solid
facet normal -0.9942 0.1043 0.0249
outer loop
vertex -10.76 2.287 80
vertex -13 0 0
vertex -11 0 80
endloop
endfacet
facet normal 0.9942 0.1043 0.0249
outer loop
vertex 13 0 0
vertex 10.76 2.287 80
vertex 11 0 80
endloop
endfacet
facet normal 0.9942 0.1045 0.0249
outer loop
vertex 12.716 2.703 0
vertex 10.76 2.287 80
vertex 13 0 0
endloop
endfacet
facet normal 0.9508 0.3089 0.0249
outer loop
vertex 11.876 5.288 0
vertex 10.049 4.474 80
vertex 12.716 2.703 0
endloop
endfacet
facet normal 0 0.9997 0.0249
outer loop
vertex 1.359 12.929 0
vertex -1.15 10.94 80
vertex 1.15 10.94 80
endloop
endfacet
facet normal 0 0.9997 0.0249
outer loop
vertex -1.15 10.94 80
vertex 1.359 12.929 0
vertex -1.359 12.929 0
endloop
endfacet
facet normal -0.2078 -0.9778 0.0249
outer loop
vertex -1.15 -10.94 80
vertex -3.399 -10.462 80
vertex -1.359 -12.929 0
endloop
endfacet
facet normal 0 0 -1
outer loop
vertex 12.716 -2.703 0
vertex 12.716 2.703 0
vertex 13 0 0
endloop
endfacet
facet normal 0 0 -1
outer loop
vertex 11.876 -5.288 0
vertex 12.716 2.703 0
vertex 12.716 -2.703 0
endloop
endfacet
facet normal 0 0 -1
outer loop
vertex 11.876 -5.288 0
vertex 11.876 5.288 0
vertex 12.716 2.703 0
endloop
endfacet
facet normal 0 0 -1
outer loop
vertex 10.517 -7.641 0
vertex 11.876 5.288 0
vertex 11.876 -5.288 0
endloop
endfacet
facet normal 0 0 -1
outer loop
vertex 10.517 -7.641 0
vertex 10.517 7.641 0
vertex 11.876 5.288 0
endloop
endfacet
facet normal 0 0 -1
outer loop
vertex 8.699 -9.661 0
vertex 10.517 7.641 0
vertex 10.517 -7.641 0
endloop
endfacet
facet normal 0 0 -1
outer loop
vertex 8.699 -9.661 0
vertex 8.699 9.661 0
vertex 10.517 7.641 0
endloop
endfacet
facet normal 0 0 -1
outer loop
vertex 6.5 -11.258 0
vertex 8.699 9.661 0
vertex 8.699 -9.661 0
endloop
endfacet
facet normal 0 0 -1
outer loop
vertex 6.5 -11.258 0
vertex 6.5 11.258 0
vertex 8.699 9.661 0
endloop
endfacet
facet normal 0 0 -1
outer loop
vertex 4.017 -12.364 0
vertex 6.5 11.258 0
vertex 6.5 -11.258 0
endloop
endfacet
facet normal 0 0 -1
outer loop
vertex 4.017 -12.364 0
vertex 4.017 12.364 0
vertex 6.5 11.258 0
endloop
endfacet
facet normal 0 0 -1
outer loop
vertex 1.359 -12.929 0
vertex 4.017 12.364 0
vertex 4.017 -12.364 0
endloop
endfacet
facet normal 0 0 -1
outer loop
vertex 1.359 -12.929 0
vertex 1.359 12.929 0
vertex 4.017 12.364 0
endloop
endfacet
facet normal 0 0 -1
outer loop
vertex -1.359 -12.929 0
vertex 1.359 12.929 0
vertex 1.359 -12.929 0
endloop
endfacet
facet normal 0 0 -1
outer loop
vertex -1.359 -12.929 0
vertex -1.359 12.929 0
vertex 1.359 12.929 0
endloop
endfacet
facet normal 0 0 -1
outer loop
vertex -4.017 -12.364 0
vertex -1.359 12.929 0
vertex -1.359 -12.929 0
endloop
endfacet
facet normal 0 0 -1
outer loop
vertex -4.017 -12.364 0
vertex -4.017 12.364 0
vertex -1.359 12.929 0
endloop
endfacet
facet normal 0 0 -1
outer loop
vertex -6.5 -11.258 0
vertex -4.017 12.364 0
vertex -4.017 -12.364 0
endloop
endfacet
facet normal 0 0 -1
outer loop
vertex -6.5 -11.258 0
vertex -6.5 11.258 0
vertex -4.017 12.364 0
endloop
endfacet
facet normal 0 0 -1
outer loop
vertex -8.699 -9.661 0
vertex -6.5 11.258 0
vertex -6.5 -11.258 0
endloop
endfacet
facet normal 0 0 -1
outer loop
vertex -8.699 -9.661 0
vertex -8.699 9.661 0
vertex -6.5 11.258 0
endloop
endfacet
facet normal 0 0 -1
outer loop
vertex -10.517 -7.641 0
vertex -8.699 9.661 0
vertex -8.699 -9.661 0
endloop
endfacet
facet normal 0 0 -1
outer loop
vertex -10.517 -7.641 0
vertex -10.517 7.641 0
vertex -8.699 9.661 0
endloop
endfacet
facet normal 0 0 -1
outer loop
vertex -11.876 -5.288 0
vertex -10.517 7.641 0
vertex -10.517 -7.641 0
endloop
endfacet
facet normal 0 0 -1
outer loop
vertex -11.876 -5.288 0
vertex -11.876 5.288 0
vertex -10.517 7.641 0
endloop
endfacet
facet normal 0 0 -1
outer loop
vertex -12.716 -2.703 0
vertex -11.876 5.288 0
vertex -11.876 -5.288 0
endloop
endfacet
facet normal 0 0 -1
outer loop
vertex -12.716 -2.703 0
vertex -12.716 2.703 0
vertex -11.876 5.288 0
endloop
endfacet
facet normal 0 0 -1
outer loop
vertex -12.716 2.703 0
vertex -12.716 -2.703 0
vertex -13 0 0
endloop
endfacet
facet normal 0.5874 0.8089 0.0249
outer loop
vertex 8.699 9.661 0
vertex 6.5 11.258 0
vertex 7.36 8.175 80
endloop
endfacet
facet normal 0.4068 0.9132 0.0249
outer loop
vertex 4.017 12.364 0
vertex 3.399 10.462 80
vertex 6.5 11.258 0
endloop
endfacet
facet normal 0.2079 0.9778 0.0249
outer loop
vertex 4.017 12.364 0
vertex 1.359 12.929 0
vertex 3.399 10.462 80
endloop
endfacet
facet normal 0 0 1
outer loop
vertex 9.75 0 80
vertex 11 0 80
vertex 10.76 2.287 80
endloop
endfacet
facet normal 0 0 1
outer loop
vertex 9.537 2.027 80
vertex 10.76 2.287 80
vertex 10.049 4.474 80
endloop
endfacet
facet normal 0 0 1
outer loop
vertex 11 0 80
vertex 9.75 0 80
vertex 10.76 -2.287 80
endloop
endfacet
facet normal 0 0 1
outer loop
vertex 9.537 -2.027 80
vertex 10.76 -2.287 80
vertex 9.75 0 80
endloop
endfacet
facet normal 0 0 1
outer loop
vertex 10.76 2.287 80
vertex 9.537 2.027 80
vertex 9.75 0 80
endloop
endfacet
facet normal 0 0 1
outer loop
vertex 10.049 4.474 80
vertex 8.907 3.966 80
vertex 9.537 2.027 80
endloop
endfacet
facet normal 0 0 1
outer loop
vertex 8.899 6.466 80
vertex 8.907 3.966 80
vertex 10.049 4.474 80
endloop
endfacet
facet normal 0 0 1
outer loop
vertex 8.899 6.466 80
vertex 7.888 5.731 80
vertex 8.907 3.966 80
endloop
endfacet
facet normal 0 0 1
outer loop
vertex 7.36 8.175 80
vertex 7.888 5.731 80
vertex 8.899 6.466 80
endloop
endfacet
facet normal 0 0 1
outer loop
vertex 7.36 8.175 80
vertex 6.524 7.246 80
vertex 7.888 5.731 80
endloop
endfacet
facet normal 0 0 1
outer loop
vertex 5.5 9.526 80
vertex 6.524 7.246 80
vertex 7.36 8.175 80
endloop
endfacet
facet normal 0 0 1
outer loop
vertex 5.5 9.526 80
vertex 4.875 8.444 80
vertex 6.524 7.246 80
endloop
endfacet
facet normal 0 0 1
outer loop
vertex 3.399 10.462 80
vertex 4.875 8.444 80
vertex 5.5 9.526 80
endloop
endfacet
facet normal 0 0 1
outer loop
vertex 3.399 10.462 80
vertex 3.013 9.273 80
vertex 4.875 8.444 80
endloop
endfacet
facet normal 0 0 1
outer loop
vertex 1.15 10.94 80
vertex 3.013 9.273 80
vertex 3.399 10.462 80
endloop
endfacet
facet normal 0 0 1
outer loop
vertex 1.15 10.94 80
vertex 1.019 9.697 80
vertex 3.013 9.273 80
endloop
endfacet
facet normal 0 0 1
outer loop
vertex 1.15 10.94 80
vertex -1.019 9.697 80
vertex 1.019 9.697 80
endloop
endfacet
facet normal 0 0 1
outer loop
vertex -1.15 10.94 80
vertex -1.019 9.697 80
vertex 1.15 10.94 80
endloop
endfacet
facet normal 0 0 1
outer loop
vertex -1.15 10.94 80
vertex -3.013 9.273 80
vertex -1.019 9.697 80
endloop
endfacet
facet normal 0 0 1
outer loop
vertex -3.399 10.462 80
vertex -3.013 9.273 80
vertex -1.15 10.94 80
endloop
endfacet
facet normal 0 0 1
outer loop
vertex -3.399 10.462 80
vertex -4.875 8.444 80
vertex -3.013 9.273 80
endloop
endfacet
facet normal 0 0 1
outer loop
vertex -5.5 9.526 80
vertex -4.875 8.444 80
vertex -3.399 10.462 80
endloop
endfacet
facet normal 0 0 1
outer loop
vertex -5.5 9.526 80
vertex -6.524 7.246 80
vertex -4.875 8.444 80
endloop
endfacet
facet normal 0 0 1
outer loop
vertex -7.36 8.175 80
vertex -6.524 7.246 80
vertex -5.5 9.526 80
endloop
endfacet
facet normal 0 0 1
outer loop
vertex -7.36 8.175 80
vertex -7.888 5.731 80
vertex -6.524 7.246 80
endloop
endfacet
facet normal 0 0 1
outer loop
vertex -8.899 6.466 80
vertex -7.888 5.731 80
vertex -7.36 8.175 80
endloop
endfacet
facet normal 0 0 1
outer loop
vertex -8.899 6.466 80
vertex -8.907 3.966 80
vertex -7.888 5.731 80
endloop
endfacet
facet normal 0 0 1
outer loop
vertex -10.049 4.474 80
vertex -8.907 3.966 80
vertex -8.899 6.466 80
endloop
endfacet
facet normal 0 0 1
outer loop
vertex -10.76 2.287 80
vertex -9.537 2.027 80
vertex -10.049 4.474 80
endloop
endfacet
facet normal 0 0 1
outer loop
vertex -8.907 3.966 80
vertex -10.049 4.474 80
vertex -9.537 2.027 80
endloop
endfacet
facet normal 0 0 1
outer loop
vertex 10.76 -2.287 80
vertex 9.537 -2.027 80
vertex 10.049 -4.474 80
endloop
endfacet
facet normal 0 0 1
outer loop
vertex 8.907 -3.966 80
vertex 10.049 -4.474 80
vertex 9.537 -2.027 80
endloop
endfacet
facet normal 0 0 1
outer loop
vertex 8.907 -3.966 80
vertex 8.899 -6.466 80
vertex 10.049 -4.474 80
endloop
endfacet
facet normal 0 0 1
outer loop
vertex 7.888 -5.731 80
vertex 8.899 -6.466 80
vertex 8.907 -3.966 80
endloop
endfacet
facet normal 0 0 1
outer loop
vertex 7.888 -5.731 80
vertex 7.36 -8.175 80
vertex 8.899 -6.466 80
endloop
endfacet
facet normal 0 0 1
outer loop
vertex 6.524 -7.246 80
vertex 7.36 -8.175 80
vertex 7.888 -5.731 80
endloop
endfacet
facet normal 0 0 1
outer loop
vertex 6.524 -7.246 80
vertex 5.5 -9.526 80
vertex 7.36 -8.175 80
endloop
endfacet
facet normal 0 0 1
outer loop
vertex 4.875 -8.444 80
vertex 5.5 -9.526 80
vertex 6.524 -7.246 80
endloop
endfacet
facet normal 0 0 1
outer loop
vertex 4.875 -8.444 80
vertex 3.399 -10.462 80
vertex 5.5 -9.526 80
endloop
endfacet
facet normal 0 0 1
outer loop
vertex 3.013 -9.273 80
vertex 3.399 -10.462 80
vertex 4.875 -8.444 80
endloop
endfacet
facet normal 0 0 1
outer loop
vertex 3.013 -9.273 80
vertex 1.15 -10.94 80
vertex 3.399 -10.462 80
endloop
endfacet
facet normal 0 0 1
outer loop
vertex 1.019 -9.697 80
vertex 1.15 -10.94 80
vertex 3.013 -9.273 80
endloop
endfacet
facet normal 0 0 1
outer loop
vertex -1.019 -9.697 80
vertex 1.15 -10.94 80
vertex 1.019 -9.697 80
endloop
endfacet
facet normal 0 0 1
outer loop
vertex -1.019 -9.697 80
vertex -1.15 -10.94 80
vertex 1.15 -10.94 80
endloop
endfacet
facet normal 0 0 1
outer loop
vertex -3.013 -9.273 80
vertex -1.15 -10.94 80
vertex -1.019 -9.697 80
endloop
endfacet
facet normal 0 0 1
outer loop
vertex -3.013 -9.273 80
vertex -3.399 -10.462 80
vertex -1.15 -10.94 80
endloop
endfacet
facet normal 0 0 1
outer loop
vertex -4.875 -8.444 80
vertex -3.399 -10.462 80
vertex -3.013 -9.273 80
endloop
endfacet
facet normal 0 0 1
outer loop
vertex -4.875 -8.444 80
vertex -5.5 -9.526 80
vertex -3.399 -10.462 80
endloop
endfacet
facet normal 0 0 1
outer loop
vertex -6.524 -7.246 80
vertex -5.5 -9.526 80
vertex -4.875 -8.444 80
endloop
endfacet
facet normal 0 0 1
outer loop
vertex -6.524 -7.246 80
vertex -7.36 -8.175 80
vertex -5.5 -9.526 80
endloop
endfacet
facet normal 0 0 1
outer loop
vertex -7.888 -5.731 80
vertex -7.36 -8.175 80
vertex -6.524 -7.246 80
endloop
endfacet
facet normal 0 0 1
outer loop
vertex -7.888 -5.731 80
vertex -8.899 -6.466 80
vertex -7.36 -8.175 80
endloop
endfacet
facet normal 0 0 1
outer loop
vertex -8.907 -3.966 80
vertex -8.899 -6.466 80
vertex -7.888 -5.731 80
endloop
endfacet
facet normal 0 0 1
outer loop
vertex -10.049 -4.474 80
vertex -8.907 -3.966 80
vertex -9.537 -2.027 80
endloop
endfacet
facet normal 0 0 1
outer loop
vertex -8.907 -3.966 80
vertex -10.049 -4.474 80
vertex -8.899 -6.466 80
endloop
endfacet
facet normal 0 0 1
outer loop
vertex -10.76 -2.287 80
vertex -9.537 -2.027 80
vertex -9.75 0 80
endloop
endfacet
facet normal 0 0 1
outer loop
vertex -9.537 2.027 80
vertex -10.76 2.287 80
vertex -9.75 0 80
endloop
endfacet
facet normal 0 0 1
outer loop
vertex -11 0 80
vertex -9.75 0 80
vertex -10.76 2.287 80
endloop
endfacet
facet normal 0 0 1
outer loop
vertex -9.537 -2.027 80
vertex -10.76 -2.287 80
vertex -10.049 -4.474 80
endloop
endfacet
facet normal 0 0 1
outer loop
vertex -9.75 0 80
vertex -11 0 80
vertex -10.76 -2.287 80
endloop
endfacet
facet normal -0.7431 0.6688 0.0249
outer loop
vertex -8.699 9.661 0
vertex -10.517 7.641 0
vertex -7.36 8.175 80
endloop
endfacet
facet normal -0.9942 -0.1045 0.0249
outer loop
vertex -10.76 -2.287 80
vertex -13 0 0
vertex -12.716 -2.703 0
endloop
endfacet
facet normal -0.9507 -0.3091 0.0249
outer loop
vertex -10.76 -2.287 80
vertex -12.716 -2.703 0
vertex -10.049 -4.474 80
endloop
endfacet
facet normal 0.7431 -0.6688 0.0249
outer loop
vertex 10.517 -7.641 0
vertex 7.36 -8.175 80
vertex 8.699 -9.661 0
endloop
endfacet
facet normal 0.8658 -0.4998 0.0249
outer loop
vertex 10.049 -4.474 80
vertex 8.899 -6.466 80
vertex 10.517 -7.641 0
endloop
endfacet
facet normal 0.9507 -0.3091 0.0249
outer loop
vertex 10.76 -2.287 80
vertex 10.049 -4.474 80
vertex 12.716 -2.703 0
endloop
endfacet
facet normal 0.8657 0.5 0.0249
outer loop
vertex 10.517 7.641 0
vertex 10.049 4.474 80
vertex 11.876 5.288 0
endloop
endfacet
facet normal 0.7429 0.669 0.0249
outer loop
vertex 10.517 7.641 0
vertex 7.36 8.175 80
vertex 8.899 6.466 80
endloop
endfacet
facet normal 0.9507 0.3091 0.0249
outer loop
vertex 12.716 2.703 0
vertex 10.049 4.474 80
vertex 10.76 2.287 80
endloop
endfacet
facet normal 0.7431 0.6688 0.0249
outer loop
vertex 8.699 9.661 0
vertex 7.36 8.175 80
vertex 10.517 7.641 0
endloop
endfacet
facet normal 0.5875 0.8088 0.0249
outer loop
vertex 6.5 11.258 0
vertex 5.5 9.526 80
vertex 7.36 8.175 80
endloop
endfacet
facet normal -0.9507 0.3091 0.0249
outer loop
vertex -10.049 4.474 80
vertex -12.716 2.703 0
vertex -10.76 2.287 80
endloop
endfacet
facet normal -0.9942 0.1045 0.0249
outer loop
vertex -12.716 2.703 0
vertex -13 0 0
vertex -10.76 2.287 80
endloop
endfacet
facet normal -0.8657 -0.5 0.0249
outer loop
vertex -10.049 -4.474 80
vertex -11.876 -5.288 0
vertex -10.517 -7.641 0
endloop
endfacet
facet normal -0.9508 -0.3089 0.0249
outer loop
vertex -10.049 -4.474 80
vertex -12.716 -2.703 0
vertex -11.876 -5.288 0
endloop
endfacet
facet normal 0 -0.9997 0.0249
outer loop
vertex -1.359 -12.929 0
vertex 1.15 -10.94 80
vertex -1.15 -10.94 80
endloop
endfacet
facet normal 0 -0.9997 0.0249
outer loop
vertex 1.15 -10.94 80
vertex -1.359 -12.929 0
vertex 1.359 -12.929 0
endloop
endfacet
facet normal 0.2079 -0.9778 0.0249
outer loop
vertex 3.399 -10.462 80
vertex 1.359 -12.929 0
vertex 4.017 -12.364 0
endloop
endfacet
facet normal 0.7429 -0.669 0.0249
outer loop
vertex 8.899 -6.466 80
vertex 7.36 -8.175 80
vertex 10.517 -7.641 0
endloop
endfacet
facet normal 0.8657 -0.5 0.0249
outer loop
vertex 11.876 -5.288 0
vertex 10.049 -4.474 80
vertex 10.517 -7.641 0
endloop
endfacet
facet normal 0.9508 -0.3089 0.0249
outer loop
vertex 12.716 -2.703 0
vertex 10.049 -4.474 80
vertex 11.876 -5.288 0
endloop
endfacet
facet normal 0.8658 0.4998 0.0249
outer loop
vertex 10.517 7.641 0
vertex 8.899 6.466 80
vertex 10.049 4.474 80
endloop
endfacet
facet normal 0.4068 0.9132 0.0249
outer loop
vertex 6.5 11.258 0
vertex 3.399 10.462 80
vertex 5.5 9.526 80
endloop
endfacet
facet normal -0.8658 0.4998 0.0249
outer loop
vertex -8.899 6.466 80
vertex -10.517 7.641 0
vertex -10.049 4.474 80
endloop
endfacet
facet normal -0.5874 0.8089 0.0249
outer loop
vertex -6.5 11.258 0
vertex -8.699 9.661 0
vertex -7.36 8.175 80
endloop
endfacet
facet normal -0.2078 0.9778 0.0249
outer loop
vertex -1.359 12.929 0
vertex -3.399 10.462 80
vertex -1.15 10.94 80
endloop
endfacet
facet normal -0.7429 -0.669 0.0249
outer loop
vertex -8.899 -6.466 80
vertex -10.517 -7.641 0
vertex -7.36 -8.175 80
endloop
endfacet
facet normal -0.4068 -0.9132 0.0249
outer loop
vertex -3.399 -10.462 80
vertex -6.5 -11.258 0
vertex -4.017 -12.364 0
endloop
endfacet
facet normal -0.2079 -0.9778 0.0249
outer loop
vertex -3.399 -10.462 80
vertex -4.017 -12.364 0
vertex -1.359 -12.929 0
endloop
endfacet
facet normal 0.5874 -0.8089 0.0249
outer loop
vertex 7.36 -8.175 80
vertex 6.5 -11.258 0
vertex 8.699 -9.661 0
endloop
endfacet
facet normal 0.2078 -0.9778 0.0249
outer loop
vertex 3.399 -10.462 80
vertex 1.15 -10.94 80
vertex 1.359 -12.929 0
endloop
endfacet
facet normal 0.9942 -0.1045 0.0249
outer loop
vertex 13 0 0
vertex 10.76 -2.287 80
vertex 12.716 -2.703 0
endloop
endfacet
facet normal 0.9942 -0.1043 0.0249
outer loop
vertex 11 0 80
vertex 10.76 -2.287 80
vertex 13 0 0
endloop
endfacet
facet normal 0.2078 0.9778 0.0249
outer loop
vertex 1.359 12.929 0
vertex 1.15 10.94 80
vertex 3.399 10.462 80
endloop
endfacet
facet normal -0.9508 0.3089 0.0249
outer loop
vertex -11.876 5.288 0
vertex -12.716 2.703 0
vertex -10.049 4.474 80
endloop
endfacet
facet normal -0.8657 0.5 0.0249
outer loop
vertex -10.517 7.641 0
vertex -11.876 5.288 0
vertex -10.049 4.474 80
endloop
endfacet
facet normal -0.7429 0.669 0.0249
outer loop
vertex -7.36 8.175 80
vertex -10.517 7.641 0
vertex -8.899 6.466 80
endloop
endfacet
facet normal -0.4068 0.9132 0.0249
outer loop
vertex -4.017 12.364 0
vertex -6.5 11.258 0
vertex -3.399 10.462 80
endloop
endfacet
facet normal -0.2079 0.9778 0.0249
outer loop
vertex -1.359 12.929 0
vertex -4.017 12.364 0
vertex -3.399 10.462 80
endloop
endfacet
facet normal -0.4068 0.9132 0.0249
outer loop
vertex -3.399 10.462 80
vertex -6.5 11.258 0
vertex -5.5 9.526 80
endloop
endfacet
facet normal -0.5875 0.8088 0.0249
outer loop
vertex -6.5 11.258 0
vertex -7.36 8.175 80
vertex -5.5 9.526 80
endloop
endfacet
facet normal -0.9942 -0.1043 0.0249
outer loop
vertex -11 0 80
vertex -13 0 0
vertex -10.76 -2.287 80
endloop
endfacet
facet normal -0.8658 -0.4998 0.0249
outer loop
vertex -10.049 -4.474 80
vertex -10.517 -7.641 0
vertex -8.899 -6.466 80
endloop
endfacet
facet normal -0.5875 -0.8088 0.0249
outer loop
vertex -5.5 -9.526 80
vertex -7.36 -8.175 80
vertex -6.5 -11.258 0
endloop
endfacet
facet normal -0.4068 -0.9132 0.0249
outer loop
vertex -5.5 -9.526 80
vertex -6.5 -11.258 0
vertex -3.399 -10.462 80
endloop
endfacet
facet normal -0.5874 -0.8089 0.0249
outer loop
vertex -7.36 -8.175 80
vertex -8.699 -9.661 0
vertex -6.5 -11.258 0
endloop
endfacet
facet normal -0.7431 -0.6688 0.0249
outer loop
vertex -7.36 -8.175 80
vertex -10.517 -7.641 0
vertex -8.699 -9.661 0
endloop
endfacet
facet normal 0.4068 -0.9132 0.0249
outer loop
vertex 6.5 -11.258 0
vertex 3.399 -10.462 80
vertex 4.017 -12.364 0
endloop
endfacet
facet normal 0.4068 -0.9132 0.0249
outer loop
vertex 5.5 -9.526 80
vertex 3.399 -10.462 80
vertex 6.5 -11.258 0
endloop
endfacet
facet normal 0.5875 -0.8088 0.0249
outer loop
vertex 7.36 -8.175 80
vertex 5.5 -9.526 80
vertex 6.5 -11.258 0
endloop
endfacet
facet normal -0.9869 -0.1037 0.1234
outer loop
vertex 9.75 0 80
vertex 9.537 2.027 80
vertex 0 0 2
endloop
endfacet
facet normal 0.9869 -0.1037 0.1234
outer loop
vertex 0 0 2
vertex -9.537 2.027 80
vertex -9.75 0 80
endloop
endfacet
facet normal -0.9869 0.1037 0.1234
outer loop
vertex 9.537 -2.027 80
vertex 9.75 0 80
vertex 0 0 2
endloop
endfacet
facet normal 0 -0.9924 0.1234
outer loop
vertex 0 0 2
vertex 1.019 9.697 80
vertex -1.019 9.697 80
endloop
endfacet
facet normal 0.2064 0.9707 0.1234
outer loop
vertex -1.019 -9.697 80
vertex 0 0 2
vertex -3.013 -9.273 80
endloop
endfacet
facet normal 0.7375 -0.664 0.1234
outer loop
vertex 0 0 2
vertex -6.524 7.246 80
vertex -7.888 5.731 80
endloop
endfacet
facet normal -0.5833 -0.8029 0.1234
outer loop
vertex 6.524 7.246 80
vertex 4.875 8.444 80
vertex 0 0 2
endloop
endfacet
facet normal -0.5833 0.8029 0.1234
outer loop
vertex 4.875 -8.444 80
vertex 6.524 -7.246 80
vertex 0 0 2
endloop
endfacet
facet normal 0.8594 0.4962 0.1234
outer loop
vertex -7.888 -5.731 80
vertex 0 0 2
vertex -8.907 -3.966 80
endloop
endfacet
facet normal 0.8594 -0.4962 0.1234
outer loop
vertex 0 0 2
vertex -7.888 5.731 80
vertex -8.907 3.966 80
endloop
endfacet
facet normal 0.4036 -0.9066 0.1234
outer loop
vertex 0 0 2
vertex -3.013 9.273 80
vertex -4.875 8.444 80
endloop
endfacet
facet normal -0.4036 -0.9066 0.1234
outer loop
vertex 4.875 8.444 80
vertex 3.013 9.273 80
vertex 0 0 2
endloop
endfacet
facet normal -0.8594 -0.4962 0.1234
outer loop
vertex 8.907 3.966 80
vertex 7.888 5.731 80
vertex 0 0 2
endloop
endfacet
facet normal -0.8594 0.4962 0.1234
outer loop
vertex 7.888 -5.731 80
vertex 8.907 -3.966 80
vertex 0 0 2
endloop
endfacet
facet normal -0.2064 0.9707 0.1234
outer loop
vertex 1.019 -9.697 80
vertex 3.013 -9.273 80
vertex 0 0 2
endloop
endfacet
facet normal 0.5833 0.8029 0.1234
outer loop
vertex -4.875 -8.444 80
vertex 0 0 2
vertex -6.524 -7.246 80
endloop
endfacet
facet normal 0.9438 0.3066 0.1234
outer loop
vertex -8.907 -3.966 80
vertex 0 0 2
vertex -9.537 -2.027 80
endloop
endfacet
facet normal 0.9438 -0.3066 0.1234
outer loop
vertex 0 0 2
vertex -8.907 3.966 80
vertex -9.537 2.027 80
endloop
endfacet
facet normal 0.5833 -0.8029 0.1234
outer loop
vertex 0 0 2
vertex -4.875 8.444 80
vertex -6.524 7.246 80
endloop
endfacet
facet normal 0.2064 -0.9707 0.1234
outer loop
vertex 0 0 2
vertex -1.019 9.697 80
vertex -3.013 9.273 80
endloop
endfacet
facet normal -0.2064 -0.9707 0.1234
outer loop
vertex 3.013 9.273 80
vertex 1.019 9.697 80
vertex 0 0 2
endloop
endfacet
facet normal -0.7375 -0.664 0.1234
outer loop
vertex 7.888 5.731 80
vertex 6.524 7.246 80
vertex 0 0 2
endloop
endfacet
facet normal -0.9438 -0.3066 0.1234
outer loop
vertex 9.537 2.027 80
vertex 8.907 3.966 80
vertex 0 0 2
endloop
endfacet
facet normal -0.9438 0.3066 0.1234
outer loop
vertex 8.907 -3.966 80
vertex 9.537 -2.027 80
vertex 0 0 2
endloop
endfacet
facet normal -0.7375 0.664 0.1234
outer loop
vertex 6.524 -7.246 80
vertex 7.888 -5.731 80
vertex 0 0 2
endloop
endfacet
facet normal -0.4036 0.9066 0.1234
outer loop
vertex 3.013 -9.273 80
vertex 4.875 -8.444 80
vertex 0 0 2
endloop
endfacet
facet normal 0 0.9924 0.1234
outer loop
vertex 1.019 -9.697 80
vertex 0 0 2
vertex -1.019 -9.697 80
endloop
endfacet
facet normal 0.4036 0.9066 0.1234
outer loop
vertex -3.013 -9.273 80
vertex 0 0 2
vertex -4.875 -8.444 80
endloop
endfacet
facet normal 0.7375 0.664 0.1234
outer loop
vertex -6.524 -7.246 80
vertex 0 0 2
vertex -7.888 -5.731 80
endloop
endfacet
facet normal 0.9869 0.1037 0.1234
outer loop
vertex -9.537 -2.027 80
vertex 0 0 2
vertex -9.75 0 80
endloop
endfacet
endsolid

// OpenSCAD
union()
{
    difference()
    {
        
        cylinder(80,13,11);

        translate([0,0,2])
            cylinder(80,0,10);    

    }
    
  
}
